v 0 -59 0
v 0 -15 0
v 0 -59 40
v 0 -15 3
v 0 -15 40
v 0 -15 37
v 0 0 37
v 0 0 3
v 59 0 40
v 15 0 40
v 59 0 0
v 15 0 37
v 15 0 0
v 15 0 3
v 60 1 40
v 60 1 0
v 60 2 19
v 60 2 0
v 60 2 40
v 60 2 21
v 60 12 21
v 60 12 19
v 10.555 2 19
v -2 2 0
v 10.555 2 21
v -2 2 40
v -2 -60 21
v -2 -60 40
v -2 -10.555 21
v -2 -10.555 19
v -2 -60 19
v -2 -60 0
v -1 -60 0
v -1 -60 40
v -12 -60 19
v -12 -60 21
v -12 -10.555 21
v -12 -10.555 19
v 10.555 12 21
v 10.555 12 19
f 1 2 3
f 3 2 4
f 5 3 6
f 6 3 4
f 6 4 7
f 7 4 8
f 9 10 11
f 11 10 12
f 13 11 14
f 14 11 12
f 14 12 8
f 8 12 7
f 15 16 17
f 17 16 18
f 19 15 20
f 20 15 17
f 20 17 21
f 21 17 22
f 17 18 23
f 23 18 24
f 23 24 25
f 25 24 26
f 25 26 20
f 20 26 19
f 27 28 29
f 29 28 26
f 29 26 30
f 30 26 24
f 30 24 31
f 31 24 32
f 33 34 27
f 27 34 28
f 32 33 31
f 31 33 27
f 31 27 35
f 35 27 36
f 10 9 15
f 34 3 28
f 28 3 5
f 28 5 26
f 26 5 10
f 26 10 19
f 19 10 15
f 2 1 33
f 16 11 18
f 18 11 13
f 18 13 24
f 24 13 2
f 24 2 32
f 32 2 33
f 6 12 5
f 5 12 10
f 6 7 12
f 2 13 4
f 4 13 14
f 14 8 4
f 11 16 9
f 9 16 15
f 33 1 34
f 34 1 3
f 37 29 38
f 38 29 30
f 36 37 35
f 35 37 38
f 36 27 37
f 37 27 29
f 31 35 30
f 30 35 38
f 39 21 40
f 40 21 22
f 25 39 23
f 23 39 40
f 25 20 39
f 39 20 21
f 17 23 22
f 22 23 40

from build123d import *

# Parameters (mm, degrees)
BOSS_EXTRUDE1_DEPTH = 40
BOSS_EXTRUDE2_DEPTH = 3
LPATTERN1_COUNT     = 2
LPATTERN1_PITCH     = 37
CHAMFER1_SIZE       = 1
BOSS_EXTRUDE5_START = -21
SKETCH6_W           = 10
SKETCH6_H           = 49.445125494
SKETCH6_W_2         = 49.445125494
SKETCH6_H_2         = 10
BOSS_EXTRUDE5_DEPTH = 2


with BuildPart() as part:
    # Sketch2 → Boss-Extrude1 (new body)
    with BuildSketch(Plane.XY):
        Polygon((0, 0), (60, 0), (60, 2), (-2, 2), (-2, -60), (0, -60), align=None)
    extrude(amount=BOSS_EXTRUDE1_DEPTH)

    # Sketch3 → Boss-Extrude2 (add)
    with BuildSketch(Plane.XY.offset(40)):
        Polygon((15, 0), (0, 0), (0, -15), align=None)
    boss_extrude2 = extrude(amount=-BOSS_EXTRUDE2_DEPTH)

    # LPattern1: Boss-Extrude2 ×2
    with Locations(*[(0, 0, -i * LPATTERN1_PITCH) for i in range(1, LPATTERN1_COUNT)]):
        add(boss_extrude2)

    # Chamfer1
    chamfer1_edges = [part.edges().sort_by_distance(p)[0] for p in [
        (0, -60, 20),
        (60, 0, 20),
    ]]
    chamfer(chamfer1_edges, length=CHAMFER1_SIZE)

    # Sketch6 → Boss-Extrude5 (add)
    with BuildSketch(Plane.XY.offset(40).offset(BOSS_EXTRUDE5_START)):
        with Locations((-7, -35.277437253)):
            Rectangle(SKETCH6_W, SKETCH6_H)
        with Locations((35.277437253, 7)):
            Rectangle(SKETCH6_W_2, SKETCH6_H_2)
    extrude(amount=BOSS_EXTRUDE5_DEPTH)


solid = part.part
